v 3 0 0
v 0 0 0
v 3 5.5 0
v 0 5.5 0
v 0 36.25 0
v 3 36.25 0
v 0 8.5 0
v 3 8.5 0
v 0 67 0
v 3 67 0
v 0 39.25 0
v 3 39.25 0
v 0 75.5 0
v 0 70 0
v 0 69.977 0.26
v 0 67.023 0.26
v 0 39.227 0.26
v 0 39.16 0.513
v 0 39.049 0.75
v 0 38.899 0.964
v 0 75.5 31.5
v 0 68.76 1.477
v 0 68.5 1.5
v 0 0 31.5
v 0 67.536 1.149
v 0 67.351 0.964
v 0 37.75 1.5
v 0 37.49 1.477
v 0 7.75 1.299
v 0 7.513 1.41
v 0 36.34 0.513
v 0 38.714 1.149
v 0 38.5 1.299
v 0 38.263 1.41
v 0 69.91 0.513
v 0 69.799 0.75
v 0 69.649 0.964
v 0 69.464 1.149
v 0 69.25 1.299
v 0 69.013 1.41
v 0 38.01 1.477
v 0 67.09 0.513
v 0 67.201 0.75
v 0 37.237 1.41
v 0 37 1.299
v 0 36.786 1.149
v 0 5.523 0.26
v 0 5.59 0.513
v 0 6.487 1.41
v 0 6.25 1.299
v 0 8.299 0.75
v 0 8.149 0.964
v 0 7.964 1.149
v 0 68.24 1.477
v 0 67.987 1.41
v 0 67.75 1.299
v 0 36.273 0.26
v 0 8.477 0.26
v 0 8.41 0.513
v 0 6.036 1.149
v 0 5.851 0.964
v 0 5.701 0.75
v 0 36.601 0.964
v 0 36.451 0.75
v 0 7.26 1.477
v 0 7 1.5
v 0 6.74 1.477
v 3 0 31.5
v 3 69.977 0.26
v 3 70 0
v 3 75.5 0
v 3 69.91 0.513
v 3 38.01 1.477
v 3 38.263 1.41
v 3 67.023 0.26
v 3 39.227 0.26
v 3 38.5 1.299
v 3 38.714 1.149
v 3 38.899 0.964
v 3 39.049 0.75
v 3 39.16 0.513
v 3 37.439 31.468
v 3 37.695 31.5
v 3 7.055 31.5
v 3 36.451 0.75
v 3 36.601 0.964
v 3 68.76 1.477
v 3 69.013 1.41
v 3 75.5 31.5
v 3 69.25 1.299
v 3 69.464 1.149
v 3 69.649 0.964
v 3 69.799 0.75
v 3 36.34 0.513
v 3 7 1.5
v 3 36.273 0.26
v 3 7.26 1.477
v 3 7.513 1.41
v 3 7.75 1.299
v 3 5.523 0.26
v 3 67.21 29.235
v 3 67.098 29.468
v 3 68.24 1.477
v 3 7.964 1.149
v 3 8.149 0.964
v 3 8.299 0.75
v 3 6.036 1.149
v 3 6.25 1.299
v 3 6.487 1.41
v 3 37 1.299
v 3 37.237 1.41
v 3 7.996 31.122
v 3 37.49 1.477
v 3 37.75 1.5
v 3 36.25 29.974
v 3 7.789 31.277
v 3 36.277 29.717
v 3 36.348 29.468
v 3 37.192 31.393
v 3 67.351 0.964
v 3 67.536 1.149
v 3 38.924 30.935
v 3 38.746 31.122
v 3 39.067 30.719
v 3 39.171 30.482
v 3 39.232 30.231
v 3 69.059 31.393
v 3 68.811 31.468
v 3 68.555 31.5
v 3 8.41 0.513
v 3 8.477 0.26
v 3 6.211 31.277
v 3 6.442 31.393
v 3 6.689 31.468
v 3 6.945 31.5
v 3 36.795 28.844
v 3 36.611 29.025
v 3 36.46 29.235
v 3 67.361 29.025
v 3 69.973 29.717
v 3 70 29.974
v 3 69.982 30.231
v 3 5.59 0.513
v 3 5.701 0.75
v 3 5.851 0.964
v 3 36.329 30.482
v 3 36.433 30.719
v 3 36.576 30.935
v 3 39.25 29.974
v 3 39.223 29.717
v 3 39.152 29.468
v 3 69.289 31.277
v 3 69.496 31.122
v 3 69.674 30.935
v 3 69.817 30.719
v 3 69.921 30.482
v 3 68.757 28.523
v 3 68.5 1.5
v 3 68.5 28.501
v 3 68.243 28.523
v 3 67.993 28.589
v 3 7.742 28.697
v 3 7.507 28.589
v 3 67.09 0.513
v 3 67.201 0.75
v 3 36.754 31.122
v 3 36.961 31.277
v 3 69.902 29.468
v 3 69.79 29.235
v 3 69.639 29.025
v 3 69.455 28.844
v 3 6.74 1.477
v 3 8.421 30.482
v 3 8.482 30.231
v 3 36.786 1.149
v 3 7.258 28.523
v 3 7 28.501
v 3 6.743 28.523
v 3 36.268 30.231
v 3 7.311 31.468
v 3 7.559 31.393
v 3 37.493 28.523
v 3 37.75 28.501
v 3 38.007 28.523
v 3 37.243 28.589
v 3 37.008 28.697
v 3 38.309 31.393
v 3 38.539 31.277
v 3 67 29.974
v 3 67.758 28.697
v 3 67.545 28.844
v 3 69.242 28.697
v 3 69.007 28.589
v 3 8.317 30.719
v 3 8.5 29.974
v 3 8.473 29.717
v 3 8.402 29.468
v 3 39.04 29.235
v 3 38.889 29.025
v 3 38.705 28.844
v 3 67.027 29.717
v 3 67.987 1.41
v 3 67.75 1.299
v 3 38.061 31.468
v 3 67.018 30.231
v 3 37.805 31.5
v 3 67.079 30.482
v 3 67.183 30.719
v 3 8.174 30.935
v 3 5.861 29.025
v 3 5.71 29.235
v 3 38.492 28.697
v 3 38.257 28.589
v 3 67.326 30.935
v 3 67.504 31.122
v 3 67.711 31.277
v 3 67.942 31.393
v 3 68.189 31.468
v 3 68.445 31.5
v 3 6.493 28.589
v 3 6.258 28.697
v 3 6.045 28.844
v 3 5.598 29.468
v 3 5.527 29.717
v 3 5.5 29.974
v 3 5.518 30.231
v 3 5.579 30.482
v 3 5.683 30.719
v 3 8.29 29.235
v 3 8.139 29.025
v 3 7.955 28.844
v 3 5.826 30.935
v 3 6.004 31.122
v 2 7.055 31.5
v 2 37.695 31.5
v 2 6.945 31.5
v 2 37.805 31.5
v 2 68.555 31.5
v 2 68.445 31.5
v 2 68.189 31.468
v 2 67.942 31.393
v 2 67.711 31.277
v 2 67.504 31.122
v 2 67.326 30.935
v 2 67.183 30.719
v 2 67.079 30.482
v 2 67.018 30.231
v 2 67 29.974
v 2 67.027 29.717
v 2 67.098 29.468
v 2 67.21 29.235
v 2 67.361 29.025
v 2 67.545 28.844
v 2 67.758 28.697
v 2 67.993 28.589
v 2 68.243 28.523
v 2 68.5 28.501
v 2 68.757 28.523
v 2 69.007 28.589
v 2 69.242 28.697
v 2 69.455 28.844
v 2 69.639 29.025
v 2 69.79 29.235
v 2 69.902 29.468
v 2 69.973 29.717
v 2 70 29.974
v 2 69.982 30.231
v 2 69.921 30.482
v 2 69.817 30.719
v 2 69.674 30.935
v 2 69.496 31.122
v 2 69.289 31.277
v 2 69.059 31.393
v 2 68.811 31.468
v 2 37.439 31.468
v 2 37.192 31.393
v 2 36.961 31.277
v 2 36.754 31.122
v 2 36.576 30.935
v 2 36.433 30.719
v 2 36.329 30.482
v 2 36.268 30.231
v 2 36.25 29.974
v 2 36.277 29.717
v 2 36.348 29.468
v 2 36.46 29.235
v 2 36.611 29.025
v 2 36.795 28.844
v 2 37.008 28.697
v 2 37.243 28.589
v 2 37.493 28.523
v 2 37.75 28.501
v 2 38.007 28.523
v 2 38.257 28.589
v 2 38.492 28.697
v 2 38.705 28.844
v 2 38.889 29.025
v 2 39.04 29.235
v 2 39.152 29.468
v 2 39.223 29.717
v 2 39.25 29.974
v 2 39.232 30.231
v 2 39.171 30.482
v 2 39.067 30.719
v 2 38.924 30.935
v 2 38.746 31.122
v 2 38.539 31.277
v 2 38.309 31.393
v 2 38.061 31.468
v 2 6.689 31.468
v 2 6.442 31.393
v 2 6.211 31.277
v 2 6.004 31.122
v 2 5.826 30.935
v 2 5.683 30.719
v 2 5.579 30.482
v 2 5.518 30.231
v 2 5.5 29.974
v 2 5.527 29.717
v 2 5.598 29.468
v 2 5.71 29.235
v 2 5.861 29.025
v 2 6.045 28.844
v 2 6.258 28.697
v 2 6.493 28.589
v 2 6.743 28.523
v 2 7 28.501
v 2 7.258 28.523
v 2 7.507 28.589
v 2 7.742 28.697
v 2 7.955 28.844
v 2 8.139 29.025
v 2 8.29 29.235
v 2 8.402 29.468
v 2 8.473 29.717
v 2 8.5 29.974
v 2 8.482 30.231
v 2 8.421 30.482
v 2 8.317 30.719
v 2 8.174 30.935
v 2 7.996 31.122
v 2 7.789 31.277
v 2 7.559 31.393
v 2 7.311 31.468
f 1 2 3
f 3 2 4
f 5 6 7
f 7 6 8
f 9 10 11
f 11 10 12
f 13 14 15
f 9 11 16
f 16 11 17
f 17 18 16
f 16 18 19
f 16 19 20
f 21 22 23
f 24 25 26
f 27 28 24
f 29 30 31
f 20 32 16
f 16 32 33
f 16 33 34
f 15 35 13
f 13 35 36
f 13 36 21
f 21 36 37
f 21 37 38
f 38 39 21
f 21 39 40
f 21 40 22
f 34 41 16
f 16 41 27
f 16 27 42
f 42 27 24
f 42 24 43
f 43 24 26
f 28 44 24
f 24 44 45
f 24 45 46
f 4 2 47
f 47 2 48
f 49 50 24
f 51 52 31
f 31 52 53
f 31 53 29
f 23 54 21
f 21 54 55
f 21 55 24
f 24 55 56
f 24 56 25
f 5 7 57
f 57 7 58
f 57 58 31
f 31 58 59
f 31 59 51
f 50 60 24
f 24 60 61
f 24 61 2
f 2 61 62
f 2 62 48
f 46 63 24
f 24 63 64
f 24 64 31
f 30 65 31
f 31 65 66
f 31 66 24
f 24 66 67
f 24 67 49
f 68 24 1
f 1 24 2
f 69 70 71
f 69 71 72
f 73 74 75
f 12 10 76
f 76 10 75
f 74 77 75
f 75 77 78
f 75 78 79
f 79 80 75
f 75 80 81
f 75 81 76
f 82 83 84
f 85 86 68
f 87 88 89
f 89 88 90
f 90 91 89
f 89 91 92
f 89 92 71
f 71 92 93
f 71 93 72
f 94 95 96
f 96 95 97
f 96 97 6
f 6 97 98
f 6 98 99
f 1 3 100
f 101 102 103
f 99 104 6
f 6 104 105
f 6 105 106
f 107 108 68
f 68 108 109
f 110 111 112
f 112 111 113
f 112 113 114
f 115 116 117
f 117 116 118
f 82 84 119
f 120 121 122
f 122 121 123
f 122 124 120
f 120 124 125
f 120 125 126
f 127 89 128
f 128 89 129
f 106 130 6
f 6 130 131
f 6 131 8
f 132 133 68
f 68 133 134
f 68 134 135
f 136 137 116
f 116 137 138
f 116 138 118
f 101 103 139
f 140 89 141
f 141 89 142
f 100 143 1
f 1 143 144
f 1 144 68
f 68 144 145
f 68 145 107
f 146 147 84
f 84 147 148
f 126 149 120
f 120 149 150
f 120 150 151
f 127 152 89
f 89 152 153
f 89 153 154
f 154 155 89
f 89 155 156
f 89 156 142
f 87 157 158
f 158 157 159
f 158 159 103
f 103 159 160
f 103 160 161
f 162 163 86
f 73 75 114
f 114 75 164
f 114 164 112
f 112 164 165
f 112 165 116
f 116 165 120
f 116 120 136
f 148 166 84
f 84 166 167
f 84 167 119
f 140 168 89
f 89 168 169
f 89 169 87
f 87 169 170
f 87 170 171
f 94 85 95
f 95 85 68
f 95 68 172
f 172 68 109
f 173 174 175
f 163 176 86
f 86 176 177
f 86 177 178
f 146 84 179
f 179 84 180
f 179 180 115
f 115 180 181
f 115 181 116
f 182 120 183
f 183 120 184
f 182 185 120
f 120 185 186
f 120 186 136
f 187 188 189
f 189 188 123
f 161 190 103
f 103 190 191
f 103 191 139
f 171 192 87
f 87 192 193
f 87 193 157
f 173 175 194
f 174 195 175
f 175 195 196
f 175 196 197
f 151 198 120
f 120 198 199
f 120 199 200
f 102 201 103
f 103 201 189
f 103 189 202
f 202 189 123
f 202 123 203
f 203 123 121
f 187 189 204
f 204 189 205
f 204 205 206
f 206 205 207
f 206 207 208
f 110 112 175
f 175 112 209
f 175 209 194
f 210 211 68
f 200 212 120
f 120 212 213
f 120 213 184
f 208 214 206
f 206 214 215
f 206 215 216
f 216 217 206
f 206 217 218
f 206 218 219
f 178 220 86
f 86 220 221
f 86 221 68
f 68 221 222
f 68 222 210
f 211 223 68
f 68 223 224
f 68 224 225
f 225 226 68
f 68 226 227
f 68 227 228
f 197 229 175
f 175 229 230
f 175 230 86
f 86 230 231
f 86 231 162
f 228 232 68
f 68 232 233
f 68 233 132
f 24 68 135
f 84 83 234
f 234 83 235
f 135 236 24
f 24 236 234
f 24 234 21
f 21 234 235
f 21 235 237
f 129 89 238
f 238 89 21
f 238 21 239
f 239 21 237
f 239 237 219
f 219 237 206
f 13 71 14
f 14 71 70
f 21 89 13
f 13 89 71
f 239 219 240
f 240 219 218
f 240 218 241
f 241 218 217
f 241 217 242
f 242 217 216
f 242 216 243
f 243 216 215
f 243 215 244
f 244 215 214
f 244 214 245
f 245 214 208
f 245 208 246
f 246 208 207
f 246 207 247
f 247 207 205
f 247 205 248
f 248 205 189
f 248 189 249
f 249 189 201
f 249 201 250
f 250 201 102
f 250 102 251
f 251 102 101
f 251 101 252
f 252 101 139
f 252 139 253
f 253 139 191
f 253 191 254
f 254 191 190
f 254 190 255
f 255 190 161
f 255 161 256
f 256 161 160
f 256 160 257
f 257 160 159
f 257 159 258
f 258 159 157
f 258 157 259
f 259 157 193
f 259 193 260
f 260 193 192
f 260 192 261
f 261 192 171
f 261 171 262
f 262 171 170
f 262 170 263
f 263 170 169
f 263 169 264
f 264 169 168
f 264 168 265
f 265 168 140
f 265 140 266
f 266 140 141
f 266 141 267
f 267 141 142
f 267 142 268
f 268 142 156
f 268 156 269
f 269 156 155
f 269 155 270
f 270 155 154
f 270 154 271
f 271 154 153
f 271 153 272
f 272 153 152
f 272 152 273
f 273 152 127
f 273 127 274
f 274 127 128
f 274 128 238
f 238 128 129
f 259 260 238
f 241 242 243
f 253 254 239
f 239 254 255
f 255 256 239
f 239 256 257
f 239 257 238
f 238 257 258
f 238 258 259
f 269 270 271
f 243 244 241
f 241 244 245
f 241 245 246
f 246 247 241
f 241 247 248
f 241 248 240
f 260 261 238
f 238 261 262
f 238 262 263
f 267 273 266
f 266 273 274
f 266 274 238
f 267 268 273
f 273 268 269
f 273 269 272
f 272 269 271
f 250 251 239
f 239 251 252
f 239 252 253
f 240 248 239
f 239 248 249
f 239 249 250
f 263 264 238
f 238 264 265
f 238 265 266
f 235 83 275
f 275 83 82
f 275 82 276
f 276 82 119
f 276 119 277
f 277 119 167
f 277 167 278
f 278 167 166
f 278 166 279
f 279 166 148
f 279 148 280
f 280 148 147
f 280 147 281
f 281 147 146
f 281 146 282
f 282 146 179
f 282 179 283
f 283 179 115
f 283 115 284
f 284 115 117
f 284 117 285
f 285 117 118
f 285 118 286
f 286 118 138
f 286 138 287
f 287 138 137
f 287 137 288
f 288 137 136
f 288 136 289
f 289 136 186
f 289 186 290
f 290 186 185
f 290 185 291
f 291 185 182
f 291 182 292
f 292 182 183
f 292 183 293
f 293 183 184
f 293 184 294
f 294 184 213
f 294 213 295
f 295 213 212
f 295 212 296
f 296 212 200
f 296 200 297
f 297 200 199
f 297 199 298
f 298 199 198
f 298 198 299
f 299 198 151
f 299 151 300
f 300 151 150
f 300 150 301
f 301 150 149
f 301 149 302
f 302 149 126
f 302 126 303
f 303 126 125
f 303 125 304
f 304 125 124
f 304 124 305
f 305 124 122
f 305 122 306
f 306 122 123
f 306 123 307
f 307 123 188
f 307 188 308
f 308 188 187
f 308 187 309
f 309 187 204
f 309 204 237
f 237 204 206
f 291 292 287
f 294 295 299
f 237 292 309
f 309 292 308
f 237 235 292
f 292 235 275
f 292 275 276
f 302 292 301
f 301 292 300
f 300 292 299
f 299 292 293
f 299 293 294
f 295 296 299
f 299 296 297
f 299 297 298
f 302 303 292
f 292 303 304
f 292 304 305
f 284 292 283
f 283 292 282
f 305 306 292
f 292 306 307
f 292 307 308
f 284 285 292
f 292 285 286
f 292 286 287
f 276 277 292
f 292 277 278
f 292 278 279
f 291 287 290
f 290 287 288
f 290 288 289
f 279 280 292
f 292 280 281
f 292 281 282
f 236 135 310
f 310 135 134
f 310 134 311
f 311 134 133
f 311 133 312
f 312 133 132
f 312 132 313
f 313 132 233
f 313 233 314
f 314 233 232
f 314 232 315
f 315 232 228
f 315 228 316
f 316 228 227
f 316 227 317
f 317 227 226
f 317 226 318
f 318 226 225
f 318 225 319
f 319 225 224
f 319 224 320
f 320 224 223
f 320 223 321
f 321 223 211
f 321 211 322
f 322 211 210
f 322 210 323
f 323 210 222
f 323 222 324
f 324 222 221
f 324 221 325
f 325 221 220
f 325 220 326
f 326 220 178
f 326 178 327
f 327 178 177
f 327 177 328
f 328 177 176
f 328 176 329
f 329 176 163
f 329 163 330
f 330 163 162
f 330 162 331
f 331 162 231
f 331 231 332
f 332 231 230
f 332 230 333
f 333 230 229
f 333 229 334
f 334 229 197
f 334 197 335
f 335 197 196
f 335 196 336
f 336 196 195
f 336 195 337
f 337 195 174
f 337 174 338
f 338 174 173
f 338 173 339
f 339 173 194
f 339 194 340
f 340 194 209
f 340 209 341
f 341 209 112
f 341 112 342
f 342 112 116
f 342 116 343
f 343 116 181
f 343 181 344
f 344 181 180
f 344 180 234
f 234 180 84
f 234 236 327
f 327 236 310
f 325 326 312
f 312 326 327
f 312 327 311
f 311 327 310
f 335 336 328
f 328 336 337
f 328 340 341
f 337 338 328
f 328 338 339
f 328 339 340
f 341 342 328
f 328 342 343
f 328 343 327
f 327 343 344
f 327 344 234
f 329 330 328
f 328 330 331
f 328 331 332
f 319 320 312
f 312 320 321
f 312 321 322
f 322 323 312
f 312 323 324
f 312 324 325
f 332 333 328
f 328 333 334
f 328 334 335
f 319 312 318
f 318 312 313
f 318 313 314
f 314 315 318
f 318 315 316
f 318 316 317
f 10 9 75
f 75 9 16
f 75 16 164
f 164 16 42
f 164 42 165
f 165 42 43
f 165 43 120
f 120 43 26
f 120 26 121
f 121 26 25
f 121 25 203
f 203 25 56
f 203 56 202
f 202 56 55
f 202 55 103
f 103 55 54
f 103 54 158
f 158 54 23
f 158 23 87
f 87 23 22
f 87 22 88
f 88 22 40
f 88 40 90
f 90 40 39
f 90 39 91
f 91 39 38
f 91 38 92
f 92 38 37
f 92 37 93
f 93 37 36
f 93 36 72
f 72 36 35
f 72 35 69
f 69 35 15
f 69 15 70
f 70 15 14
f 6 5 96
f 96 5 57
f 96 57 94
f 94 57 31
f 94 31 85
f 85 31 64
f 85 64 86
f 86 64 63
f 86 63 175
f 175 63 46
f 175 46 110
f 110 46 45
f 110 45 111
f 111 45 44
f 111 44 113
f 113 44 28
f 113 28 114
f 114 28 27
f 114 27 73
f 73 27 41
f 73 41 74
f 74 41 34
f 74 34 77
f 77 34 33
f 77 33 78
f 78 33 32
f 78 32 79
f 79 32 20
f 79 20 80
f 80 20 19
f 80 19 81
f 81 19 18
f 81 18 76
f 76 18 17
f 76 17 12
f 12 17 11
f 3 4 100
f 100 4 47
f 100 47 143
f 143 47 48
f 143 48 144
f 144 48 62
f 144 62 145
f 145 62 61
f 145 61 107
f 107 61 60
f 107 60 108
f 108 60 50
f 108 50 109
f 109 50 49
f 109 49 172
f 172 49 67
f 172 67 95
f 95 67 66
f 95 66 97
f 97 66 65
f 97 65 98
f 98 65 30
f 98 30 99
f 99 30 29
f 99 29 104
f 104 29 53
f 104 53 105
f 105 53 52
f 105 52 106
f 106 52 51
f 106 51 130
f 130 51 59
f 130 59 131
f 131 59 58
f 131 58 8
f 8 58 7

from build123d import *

# Parameters (mm, degrees)
SKETCH_1_W                                     = 3
SKETCH_1_H                                     = 74
EXTRUDE_1_DEPTH                                = 31.5
SKETCH_2_W                                     = 3
SKETCH_2_H                                     = 1.5
SIDE_REAR_EXTENSION_1P5MM_DEPTH                = 31.5
SKETCH_3_R                                     = 1.5
SIDE_TOP_EDGE_MAGNET_POCKETS_D3_DEPTH1_3_DEPTH = 1
SIDE_BOTTOM_EDGE_SEMICIRCLES_D3_THROUGH_DEPTH  = 4


with BuildPart() as part:
    # Эскиз1 → Бобышка-Вытянуть1 (new body)
    with BuildSketch(Plane.XY):
        with Locations((1.5, 37)):
            Rectangle(SKETCH_1_W, SKETCH_1_H)
    extrude(amount=EXTRUDE_1_DEPTH)

    # Эскиз2 → side_rear_extension_1p5mm (add)
    with BuildSketch(Plane.XY):
        with Locations((1.5, 74.75)):
            Rectangle(SKETCH_2_W, SKETCH_2_H)
    extrude(amount=SIDE_REAR_EXTENSION_1P5MM_DEPTH)

    # Эскиз3 → side_top_edge_magnet_pockets_D3_depth1_3x (cut)
    with BuildSketch(Plane(origin=(3, 0, 0), x_dir=(0, 0, -1), z_dir=(1, 0, 0))):
        with Locations((-30.001, 7)):
            Circle(SKETCH_3_R)
        with Locations((-30.001, 37.75)):
            Circle(SKETCH_3_R)
        with Locations((-30.001, 68.5)):
            Circle(SKETCH_3_R)
    extrude(amount=-SIDE_TOP_EDGE_MAGNET_POCKETS_D3_DEPTH1_3_DEPTH, mode=Mode.SUBTRACT)

    # Эскиз4 → side_bottom_edge_semicircles_D3_through_3x (cut)
    with BuildSketch(Plane.ZY):
        with BuildLine():
            Line((0, 5.5), (0, 8.5))
            ThreePointArc((0, 8.5), (1.5, 7), (0, 5.5))
        make_face()
        with BuildLine():
            Line((0, 36.25), (0, 39.25))
            ThreePointArc((0, 39.25), (1.5, 37.75), (0, 36.25))
        make_face()
        with BuildLine():
            Line((0, 67), (0, 70))
            ThreePointArc((0, 70), (1.5, 68.5), (0, 67))
        make_face()
    extrude(amount=-SIDE_BOTTOM_EDGE_SEMICIRCLES_D3_THROUGH_DEPTH, mode=Mode.SUBTRACT)


solid = part.part
